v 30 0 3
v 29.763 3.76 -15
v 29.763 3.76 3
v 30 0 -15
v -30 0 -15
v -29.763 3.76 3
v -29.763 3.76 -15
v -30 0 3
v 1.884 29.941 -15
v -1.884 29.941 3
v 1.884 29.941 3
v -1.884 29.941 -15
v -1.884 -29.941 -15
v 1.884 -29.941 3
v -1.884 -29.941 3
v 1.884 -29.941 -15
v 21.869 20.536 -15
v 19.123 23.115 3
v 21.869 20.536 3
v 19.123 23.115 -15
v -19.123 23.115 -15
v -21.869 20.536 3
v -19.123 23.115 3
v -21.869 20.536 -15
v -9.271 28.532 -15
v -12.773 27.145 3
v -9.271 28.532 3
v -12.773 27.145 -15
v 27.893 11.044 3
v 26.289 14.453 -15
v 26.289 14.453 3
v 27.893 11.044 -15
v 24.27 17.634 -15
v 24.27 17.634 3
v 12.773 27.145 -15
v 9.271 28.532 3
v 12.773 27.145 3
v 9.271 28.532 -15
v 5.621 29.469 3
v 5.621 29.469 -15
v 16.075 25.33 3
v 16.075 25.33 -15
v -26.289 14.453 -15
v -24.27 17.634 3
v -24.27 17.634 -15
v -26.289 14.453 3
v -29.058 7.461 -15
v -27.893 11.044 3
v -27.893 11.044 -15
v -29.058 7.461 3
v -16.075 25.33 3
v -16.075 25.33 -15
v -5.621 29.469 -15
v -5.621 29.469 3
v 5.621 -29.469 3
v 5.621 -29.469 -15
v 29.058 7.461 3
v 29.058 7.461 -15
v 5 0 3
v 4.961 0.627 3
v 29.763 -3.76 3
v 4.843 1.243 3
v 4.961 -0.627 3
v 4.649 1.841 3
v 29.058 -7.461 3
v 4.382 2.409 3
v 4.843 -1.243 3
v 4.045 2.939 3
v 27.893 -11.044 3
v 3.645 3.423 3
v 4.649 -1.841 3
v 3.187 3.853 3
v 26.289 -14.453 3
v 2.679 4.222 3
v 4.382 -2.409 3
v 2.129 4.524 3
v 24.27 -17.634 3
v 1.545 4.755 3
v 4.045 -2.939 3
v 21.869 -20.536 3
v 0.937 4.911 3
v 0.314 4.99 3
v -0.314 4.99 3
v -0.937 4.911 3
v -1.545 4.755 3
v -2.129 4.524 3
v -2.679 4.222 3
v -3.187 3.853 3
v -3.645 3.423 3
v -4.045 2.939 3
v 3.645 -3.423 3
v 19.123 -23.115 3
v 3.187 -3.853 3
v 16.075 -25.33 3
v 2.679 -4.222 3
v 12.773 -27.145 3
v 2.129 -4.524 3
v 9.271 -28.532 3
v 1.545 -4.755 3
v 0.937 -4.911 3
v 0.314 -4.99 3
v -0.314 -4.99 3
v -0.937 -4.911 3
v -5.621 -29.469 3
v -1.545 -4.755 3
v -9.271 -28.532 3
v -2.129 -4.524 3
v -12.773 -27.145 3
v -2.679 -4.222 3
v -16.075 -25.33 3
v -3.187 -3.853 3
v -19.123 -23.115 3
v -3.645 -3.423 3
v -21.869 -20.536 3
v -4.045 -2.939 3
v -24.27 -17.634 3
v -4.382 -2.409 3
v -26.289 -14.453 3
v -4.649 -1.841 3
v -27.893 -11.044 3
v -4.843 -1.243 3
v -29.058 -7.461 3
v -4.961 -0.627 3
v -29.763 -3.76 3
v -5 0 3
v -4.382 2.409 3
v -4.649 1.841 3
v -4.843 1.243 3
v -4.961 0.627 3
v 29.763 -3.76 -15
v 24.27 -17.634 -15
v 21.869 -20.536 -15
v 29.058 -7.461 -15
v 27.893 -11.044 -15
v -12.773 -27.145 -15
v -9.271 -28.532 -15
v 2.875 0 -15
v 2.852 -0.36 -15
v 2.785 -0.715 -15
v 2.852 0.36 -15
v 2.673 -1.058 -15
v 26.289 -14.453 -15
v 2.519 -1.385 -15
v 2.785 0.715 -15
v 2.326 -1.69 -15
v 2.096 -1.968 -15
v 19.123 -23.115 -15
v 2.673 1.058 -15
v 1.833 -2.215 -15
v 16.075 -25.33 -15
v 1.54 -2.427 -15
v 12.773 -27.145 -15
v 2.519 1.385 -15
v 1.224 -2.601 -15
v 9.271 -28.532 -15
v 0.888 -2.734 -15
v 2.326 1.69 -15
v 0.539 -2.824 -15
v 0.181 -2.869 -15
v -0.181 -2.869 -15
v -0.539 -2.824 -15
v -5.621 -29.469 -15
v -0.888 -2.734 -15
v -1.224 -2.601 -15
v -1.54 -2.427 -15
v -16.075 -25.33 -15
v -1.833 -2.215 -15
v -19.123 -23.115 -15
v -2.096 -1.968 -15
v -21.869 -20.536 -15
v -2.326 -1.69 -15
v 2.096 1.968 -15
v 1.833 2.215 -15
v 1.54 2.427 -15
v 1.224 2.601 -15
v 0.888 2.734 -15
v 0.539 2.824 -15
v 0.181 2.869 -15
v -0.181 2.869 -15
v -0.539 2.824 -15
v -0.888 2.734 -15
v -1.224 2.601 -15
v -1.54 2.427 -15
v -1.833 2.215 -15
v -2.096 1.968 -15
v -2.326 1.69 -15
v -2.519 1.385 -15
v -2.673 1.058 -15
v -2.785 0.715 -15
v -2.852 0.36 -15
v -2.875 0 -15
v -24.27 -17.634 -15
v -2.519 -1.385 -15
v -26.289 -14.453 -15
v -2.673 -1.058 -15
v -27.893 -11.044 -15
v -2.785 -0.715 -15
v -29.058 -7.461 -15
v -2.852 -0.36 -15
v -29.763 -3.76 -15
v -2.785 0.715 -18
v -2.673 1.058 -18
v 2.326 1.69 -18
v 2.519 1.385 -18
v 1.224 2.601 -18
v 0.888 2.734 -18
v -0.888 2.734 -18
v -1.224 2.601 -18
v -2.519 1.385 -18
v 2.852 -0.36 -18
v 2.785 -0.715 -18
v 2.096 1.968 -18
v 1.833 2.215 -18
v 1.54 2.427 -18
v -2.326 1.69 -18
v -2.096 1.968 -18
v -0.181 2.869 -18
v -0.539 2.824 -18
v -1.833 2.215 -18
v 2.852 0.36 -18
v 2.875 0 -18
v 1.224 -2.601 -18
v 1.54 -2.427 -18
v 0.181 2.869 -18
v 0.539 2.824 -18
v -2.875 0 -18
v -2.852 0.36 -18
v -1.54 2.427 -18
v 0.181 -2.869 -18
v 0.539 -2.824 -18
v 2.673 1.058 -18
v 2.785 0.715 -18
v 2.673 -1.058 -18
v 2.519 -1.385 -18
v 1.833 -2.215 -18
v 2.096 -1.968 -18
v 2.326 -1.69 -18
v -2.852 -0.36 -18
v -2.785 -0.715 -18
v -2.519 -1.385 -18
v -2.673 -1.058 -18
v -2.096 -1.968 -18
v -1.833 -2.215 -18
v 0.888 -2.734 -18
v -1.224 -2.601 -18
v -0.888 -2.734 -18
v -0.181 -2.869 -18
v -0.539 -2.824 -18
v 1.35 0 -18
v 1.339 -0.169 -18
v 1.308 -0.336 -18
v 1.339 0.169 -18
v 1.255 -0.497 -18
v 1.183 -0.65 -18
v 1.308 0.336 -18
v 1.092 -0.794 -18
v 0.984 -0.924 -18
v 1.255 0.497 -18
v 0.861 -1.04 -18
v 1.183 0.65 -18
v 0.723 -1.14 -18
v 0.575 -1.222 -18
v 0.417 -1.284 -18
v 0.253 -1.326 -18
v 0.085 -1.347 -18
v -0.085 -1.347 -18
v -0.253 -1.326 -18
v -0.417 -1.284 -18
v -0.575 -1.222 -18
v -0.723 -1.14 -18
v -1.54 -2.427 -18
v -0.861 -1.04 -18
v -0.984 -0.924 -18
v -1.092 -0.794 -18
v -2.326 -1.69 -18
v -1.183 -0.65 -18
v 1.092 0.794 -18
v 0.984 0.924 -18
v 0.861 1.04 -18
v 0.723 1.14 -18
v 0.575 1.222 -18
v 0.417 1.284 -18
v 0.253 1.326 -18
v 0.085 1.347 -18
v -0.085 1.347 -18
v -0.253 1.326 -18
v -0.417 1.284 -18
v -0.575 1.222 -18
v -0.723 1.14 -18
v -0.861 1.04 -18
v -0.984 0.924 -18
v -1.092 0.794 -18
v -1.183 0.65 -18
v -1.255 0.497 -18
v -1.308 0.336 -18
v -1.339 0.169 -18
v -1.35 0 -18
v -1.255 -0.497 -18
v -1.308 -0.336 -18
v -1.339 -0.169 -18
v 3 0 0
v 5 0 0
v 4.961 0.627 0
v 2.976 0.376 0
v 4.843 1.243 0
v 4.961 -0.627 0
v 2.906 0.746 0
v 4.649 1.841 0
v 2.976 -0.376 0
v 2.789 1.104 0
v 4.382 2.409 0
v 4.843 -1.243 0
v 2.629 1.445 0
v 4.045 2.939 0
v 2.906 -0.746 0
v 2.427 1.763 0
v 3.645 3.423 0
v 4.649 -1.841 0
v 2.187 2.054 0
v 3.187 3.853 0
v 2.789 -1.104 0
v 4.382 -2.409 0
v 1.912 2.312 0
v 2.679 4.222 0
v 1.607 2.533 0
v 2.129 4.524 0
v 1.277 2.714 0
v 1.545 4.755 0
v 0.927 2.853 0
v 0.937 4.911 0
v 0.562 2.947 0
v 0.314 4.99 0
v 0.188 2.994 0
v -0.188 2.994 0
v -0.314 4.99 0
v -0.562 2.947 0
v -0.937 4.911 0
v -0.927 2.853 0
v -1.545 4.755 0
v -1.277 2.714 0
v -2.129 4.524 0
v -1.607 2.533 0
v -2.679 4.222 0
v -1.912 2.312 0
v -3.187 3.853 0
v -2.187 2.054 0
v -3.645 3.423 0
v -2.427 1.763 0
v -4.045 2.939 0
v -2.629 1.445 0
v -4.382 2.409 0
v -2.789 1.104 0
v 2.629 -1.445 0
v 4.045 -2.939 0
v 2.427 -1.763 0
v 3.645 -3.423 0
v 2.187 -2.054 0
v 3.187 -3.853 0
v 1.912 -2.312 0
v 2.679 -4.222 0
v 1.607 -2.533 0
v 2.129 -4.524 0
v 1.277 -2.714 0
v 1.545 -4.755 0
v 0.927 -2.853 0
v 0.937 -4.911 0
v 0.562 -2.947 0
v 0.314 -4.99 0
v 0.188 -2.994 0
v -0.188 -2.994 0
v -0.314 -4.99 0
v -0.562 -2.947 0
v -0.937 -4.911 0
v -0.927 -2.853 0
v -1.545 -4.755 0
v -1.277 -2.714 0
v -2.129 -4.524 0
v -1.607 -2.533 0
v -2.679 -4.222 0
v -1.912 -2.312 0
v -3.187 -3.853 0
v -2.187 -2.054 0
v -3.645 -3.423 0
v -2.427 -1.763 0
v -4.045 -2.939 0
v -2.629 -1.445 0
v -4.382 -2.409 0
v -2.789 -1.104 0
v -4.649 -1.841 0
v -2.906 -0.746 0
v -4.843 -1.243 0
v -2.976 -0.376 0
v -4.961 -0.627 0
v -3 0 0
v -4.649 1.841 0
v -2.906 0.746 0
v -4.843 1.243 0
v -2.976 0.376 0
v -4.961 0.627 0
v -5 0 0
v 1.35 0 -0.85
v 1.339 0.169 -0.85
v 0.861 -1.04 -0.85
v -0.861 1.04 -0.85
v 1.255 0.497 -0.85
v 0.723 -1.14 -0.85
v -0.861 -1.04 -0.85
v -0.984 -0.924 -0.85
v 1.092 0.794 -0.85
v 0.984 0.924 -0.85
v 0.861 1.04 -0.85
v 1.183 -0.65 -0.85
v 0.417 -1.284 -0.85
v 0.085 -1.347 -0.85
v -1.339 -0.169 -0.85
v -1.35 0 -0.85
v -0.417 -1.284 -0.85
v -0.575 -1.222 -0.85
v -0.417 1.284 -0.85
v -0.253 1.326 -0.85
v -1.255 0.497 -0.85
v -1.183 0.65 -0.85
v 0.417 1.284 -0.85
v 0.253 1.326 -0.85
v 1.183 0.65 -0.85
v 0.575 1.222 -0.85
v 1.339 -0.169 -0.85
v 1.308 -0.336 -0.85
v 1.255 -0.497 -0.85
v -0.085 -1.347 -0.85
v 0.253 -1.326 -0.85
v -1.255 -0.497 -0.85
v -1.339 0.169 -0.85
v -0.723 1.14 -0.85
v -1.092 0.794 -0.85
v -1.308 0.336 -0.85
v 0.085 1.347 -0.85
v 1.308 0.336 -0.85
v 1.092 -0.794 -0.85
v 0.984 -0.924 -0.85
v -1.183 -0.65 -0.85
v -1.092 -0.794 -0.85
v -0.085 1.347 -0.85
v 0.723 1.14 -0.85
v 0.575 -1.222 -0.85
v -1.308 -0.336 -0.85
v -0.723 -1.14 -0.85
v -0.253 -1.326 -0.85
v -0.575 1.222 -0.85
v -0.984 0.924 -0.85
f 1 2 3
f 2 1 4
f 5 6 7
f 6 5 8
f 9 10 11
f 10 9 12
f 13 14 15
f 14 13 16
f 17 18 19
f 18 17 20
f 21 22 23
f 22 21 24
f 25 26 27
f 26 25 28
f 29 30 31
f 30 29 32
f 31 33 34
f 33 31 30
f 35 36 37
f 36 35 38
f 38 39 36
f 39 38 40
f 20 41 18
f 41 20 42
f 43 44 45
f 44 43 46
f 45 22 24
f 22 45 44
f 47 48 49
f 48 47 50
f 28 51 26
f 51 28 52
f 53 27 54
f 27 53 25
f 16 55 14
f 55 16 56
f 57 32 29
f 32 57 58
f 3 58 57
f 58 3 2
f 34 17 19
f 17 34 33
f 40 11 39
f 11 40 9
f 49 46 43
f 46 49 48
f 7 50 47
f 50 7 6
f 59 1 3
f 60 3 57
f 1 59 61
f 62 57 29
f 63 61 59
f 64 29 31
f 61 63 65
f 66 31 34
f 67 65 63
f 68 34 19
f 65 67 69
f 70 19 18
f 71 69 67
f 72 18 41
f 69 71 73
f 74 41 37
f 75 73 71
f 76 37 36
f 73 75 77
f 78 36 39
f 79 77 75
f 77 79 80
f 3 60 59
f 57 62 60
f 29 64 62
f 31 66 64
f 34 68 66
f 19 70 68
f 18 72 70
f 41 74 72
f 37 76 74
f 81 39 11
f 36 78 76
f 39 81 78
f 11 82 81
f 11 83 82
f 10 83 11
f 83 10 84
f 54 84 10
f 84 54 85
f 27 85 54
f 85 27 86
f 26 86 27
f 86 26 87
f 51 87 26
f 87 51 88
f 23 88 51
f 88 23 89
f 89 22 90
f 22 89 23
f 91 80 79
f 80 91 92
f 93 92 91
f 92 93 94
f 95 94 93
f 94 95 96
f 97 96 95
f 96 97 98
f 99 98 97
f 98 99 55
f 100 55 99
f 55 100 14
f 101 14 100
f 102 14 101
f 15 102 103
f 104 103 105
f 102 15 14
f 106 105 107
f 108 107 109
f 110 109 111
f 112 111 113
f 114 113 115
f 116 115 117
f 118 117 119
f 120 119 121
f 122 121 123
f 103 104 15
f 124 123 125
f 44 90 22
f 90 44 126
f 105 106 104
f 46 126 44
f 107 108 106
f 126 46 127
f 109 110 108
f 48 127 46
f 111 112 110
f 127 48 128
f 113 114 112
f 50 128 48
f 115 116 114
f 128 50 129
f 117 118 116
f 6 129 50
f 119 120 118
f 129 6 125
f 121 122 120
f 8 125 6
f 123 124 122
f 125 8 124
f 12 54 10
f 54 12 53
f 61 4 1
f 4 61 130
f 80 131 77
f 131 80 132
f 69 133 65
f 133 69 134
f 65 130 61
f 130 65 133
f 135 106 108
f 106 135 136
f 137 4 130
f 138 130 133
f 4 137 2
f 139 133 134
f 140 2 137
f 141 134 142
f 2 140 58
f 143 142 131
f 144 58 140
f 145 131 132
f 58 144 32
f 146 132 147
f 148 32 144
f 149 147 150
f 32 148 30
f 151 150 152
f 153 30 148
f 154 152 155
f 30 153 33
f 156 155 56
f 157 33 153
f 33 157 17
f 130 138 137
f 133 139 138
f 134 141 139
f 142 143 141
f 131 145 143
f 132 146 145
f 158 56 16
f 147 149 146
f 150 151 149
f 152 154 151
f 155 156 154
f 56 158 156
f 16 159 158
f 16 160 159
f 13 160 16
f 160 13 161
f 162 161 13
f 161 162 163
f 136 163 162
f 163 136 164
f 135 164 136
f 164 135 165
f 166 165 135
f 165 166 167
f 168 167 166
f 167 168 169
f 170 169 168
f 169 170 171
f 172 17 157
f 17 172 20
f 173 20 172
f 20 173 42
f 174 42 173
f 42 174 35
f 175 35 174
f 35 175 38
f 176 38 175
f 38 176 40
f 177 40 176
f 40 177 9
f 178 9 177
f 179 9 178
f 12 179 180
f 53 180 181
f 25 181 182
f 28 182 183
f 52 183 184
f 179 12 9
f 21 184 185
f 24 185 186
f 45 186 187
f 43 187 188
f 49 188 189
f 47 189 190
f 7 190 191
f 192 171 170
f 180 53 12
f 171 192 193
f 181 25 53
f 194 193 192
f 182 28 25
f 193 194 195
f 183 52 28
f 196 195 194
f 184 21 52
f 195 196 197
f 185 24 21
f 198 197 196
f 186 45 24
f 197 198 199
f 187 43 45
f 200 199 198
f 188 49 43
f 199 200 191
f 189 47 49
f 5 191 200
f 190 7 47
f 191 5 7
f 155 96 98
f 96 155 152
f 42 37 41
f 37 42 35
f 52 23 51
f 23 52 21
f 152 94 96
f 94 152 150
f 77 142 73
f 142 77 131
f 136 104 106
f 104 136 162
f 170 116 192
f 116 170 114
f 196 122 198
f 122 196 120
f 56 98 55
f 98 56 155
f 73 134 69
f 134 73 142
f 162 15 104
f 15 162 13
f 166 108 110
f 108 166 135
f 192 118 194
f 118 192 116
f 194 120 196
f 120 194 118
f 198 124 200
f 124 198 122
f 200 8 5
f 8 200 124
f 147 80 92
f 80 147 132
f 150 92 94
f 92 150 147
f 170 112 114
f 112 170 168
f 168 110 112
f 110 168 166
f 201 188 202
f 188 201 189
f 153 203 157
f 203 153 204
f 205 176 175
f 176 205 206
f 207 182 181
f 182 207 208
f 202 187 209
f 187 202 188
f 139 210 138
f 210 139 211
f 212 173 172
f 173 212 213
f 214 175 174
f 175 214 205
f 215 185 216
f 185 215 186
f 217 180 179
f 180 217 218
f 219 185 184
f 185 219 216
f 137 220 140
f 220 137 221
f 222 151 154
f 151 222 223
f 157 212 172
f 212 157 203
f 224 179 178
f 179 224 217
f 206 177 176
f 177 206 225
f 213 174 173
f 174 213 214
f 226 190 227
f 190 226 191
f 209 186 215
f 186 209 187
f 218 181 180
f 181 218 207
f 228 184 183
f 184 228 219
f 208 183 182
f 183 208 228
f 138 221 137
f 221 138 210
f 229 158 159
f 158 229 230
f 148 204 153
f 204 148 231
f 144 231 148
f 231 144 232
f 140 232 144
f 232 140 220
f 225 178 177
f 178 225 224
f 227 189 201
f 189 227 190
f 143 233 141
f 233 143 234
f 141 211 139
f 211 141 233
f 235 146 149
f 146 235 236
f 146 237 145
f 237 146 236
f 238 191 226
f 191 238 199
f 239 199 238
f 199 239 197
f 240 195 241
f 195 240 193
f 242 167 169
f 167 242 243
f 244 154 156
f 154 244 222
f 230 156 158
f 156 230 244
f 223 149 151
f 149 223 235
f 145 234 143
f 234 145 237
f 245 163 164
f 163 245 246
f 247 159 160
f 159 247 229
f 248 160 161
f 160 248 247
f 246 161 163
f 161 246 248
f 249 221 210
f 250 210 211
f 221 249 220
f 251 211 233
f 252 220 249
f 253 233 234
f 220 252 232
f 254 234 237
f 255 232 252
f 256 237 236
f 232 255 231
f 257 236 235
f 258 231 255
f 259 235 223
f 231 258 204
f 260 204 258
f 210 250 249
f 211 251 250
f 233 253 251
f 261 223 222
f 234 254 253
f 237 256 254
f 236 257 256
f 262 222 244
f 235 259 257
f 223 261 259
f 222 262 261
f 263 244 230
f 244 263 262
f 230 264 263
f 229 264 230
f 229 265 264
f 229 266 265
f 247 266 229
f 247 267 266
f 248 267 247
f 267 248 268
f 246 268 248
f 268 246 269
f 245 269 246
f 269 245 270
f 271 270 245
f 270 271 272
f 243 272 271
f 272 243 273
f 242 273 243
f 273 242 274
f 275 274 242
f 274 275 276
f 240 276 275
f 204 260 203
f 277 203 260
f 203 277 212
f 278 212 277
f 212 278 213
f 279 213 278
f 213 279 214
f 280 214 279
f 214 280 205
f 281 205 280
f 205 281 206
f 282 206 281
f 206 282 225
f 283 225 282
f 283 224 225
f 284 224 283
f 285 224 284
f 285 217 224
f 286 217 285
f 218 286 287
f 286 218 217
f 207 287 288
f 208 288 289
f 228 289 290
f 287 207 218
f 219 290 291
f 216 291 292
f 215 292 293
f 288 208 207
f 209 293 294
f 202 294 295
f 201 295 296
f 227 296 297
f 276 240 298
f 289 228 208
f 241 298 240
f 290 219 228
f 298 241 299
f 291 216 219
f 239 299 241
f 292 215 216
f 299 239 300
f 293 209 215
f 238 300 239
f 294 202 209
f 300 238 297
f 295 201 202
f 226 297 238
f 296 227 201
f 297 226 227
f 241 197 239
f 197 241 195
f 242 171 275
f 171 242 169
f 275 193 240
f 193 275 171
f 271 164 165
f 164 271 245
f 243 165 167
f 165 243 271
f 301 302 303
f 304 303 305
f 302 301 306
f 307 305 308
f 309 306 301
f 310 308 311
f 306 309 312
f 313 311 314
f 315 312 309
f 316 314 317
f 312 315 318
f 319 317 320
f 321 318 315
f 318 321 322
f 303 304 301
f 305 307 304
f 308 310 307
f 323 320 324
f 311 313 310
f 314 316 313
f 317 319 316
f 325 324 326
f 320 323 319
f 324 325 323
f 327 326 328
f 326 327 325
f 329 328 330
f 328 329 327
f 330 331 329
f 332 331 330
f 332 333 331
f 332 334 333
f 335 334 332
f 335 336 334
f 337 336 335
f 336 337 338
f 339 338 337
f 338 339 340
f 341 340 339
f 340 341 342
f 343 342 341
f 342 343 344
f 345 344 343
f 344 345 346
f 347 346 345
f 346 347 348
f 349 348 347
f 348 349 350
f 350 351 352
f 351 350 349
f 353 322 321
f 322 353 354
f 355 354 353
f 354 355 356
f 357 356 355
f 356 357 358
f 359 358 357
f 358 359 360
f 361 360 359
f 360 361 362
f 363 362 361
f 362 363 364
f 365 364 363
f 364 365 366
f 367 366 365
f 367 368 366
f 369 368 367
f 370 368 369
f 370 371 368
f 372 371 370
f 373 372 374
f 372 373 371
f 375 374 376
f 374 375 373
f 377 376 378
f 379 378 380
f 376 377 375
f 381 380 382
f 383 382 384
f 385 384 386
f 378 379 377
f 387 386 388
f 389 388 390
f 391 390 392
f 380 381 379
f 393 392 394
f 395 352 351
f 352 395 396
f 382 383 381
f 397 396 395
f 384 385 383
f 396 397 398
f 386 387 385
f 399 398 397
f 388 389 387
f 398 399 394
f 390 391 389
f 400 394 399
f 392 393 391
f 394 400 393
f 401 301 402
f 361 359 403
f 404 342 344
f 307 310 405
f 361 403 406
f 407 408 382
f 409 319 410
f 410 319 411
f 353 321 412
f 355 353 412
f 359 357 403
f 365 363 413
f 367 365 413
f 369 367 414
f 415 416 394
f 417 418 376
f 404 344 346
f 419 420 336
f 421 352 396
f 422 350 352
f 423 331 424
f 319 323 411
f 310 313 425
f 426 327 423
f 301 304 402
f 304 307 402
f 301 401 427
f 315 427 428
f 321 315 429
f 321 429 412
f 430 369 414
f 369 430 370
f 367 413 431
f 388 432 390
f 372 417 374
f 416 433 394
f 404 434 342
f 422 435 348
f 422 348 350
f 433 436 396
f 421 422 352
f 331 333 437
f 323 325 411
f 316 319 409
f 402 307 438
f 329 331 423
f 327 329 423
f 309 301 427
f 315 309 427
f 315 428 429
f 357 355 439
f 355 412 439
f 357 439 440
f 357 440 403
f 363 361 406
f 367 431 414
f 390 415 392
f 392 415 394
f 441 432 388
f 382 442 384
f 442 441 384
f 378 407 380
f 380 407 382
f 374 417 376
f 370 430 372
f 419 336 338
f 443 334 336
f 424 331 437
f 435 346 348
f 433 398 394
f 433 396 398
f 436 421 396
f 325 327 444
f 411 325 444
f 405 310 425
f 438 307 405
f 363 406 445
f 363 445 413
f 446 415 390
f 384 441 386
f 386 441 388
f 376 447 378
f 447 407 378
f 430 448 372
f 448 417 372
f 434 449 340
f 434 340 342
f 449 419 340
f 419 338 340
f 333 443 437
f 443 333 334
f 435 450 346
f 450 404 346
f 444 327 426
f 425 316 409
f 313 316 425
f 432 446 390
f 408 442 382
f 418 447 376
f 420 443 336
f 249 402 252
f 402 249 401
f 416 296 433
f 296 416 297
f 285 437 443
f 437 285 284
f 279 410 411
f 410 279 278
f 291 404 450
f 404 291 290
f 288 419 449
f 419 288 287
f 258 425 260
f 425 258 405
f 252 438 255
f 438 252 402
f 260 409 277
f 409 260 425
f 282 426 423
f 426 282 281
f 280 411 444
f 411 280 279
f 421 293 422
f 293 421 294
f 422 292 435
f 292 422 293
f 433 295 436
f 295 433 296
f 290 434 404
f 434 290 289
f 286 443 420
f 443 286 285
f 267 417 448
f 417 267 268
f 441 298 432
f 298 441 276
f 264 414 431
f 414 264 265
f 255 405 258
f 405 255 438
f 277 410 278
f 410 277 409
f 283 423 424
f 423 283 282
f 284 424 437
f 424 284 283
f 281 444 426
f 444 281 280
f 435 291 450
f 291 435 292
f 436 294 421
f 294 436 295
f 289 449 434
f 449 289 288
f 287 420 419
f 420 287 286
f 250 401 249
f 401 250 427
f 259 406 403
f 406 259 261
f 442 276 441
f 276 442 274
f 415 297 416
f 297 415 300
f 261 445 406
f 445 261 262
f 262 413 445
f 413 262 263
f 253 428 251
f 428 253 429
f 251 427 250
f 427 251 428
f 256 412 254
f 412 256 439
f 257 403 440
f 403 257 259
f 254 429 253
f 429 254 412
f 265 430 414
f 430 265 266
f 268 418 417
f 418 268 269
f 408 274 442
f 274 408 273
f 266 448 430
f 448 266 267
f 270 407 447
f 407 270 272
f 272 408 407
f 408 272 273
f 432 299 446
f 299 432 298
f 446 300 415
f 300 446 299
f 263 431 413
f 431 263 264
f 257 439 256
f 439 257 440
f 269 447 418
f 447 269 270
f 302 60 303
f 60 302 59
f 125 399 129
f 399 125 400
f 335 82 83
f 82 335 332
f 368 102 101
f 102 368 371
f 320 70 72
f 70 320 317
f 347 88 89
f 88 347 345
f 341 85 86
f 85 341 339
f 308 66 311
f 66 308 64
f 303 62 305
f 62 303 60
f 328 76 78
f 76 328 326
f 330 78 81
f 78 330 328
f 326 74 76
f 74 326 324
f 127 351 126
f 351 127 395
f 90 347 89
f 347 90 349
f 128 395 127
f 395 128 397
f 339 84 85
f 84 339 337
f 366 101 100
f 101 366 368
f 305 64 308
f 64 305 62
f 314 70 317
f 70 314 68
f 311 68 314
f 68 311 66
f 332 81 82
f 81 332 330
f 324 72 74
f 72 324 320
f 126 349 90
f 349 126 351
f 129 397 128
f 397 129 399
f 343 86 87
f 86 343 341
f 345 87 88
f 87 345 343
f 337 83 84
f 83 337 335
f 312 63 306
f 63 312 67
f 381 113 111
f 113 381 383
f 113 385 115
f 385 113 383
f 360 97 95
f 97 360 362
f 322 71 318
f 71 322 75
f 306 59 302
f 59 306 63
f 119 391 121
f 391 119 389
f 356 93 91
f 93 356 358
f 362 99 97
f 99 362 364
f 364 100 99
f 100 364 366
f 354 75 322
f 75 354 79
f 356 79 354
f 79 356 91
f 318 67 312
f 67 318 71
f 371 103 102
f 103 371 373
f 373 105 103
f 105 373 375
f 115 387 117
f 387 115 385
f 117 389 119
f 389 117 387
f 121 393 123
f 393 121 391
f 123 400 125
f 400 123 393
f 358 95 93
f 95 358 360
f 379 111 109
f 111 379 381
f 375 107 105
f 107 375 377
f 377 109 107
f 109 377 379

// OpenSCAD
$fn = 50;

difference() {
	union() {
		translate(v = [0, 0, -15.0]) {
			cylinder(h = 18, r = 30.0);
		}
		#translate(v = [0, 0, -18.0]) {
			cylinder(h = 18, r = 2.875);
		}
	}
	union() {
		translate(v = [0, 0, 0]) {
			rotate(a = [0, 0, 0]) {
				difference() {
					union() {
						translate(v = [0, 0, -18.0]) {
							cylinder(h = 18, r = 1.0);
						}
						translate(v = [0, 0, -0.85]) {
							cylinder(h = 0.85, r1 = 1.35, r2 = 3.0);
						}
						translate(v = [0, 0, -18.0]) {
							cylinder(h = 18, r = 1.35);
						}
						translate(v = [0, 0, -18.0]) {
							cylinder(h = 18, r = 1.0);
						}
					}
					union();
				}
			}
		}
		#cylinder(h = 3, r = 5.0);
	}
}
